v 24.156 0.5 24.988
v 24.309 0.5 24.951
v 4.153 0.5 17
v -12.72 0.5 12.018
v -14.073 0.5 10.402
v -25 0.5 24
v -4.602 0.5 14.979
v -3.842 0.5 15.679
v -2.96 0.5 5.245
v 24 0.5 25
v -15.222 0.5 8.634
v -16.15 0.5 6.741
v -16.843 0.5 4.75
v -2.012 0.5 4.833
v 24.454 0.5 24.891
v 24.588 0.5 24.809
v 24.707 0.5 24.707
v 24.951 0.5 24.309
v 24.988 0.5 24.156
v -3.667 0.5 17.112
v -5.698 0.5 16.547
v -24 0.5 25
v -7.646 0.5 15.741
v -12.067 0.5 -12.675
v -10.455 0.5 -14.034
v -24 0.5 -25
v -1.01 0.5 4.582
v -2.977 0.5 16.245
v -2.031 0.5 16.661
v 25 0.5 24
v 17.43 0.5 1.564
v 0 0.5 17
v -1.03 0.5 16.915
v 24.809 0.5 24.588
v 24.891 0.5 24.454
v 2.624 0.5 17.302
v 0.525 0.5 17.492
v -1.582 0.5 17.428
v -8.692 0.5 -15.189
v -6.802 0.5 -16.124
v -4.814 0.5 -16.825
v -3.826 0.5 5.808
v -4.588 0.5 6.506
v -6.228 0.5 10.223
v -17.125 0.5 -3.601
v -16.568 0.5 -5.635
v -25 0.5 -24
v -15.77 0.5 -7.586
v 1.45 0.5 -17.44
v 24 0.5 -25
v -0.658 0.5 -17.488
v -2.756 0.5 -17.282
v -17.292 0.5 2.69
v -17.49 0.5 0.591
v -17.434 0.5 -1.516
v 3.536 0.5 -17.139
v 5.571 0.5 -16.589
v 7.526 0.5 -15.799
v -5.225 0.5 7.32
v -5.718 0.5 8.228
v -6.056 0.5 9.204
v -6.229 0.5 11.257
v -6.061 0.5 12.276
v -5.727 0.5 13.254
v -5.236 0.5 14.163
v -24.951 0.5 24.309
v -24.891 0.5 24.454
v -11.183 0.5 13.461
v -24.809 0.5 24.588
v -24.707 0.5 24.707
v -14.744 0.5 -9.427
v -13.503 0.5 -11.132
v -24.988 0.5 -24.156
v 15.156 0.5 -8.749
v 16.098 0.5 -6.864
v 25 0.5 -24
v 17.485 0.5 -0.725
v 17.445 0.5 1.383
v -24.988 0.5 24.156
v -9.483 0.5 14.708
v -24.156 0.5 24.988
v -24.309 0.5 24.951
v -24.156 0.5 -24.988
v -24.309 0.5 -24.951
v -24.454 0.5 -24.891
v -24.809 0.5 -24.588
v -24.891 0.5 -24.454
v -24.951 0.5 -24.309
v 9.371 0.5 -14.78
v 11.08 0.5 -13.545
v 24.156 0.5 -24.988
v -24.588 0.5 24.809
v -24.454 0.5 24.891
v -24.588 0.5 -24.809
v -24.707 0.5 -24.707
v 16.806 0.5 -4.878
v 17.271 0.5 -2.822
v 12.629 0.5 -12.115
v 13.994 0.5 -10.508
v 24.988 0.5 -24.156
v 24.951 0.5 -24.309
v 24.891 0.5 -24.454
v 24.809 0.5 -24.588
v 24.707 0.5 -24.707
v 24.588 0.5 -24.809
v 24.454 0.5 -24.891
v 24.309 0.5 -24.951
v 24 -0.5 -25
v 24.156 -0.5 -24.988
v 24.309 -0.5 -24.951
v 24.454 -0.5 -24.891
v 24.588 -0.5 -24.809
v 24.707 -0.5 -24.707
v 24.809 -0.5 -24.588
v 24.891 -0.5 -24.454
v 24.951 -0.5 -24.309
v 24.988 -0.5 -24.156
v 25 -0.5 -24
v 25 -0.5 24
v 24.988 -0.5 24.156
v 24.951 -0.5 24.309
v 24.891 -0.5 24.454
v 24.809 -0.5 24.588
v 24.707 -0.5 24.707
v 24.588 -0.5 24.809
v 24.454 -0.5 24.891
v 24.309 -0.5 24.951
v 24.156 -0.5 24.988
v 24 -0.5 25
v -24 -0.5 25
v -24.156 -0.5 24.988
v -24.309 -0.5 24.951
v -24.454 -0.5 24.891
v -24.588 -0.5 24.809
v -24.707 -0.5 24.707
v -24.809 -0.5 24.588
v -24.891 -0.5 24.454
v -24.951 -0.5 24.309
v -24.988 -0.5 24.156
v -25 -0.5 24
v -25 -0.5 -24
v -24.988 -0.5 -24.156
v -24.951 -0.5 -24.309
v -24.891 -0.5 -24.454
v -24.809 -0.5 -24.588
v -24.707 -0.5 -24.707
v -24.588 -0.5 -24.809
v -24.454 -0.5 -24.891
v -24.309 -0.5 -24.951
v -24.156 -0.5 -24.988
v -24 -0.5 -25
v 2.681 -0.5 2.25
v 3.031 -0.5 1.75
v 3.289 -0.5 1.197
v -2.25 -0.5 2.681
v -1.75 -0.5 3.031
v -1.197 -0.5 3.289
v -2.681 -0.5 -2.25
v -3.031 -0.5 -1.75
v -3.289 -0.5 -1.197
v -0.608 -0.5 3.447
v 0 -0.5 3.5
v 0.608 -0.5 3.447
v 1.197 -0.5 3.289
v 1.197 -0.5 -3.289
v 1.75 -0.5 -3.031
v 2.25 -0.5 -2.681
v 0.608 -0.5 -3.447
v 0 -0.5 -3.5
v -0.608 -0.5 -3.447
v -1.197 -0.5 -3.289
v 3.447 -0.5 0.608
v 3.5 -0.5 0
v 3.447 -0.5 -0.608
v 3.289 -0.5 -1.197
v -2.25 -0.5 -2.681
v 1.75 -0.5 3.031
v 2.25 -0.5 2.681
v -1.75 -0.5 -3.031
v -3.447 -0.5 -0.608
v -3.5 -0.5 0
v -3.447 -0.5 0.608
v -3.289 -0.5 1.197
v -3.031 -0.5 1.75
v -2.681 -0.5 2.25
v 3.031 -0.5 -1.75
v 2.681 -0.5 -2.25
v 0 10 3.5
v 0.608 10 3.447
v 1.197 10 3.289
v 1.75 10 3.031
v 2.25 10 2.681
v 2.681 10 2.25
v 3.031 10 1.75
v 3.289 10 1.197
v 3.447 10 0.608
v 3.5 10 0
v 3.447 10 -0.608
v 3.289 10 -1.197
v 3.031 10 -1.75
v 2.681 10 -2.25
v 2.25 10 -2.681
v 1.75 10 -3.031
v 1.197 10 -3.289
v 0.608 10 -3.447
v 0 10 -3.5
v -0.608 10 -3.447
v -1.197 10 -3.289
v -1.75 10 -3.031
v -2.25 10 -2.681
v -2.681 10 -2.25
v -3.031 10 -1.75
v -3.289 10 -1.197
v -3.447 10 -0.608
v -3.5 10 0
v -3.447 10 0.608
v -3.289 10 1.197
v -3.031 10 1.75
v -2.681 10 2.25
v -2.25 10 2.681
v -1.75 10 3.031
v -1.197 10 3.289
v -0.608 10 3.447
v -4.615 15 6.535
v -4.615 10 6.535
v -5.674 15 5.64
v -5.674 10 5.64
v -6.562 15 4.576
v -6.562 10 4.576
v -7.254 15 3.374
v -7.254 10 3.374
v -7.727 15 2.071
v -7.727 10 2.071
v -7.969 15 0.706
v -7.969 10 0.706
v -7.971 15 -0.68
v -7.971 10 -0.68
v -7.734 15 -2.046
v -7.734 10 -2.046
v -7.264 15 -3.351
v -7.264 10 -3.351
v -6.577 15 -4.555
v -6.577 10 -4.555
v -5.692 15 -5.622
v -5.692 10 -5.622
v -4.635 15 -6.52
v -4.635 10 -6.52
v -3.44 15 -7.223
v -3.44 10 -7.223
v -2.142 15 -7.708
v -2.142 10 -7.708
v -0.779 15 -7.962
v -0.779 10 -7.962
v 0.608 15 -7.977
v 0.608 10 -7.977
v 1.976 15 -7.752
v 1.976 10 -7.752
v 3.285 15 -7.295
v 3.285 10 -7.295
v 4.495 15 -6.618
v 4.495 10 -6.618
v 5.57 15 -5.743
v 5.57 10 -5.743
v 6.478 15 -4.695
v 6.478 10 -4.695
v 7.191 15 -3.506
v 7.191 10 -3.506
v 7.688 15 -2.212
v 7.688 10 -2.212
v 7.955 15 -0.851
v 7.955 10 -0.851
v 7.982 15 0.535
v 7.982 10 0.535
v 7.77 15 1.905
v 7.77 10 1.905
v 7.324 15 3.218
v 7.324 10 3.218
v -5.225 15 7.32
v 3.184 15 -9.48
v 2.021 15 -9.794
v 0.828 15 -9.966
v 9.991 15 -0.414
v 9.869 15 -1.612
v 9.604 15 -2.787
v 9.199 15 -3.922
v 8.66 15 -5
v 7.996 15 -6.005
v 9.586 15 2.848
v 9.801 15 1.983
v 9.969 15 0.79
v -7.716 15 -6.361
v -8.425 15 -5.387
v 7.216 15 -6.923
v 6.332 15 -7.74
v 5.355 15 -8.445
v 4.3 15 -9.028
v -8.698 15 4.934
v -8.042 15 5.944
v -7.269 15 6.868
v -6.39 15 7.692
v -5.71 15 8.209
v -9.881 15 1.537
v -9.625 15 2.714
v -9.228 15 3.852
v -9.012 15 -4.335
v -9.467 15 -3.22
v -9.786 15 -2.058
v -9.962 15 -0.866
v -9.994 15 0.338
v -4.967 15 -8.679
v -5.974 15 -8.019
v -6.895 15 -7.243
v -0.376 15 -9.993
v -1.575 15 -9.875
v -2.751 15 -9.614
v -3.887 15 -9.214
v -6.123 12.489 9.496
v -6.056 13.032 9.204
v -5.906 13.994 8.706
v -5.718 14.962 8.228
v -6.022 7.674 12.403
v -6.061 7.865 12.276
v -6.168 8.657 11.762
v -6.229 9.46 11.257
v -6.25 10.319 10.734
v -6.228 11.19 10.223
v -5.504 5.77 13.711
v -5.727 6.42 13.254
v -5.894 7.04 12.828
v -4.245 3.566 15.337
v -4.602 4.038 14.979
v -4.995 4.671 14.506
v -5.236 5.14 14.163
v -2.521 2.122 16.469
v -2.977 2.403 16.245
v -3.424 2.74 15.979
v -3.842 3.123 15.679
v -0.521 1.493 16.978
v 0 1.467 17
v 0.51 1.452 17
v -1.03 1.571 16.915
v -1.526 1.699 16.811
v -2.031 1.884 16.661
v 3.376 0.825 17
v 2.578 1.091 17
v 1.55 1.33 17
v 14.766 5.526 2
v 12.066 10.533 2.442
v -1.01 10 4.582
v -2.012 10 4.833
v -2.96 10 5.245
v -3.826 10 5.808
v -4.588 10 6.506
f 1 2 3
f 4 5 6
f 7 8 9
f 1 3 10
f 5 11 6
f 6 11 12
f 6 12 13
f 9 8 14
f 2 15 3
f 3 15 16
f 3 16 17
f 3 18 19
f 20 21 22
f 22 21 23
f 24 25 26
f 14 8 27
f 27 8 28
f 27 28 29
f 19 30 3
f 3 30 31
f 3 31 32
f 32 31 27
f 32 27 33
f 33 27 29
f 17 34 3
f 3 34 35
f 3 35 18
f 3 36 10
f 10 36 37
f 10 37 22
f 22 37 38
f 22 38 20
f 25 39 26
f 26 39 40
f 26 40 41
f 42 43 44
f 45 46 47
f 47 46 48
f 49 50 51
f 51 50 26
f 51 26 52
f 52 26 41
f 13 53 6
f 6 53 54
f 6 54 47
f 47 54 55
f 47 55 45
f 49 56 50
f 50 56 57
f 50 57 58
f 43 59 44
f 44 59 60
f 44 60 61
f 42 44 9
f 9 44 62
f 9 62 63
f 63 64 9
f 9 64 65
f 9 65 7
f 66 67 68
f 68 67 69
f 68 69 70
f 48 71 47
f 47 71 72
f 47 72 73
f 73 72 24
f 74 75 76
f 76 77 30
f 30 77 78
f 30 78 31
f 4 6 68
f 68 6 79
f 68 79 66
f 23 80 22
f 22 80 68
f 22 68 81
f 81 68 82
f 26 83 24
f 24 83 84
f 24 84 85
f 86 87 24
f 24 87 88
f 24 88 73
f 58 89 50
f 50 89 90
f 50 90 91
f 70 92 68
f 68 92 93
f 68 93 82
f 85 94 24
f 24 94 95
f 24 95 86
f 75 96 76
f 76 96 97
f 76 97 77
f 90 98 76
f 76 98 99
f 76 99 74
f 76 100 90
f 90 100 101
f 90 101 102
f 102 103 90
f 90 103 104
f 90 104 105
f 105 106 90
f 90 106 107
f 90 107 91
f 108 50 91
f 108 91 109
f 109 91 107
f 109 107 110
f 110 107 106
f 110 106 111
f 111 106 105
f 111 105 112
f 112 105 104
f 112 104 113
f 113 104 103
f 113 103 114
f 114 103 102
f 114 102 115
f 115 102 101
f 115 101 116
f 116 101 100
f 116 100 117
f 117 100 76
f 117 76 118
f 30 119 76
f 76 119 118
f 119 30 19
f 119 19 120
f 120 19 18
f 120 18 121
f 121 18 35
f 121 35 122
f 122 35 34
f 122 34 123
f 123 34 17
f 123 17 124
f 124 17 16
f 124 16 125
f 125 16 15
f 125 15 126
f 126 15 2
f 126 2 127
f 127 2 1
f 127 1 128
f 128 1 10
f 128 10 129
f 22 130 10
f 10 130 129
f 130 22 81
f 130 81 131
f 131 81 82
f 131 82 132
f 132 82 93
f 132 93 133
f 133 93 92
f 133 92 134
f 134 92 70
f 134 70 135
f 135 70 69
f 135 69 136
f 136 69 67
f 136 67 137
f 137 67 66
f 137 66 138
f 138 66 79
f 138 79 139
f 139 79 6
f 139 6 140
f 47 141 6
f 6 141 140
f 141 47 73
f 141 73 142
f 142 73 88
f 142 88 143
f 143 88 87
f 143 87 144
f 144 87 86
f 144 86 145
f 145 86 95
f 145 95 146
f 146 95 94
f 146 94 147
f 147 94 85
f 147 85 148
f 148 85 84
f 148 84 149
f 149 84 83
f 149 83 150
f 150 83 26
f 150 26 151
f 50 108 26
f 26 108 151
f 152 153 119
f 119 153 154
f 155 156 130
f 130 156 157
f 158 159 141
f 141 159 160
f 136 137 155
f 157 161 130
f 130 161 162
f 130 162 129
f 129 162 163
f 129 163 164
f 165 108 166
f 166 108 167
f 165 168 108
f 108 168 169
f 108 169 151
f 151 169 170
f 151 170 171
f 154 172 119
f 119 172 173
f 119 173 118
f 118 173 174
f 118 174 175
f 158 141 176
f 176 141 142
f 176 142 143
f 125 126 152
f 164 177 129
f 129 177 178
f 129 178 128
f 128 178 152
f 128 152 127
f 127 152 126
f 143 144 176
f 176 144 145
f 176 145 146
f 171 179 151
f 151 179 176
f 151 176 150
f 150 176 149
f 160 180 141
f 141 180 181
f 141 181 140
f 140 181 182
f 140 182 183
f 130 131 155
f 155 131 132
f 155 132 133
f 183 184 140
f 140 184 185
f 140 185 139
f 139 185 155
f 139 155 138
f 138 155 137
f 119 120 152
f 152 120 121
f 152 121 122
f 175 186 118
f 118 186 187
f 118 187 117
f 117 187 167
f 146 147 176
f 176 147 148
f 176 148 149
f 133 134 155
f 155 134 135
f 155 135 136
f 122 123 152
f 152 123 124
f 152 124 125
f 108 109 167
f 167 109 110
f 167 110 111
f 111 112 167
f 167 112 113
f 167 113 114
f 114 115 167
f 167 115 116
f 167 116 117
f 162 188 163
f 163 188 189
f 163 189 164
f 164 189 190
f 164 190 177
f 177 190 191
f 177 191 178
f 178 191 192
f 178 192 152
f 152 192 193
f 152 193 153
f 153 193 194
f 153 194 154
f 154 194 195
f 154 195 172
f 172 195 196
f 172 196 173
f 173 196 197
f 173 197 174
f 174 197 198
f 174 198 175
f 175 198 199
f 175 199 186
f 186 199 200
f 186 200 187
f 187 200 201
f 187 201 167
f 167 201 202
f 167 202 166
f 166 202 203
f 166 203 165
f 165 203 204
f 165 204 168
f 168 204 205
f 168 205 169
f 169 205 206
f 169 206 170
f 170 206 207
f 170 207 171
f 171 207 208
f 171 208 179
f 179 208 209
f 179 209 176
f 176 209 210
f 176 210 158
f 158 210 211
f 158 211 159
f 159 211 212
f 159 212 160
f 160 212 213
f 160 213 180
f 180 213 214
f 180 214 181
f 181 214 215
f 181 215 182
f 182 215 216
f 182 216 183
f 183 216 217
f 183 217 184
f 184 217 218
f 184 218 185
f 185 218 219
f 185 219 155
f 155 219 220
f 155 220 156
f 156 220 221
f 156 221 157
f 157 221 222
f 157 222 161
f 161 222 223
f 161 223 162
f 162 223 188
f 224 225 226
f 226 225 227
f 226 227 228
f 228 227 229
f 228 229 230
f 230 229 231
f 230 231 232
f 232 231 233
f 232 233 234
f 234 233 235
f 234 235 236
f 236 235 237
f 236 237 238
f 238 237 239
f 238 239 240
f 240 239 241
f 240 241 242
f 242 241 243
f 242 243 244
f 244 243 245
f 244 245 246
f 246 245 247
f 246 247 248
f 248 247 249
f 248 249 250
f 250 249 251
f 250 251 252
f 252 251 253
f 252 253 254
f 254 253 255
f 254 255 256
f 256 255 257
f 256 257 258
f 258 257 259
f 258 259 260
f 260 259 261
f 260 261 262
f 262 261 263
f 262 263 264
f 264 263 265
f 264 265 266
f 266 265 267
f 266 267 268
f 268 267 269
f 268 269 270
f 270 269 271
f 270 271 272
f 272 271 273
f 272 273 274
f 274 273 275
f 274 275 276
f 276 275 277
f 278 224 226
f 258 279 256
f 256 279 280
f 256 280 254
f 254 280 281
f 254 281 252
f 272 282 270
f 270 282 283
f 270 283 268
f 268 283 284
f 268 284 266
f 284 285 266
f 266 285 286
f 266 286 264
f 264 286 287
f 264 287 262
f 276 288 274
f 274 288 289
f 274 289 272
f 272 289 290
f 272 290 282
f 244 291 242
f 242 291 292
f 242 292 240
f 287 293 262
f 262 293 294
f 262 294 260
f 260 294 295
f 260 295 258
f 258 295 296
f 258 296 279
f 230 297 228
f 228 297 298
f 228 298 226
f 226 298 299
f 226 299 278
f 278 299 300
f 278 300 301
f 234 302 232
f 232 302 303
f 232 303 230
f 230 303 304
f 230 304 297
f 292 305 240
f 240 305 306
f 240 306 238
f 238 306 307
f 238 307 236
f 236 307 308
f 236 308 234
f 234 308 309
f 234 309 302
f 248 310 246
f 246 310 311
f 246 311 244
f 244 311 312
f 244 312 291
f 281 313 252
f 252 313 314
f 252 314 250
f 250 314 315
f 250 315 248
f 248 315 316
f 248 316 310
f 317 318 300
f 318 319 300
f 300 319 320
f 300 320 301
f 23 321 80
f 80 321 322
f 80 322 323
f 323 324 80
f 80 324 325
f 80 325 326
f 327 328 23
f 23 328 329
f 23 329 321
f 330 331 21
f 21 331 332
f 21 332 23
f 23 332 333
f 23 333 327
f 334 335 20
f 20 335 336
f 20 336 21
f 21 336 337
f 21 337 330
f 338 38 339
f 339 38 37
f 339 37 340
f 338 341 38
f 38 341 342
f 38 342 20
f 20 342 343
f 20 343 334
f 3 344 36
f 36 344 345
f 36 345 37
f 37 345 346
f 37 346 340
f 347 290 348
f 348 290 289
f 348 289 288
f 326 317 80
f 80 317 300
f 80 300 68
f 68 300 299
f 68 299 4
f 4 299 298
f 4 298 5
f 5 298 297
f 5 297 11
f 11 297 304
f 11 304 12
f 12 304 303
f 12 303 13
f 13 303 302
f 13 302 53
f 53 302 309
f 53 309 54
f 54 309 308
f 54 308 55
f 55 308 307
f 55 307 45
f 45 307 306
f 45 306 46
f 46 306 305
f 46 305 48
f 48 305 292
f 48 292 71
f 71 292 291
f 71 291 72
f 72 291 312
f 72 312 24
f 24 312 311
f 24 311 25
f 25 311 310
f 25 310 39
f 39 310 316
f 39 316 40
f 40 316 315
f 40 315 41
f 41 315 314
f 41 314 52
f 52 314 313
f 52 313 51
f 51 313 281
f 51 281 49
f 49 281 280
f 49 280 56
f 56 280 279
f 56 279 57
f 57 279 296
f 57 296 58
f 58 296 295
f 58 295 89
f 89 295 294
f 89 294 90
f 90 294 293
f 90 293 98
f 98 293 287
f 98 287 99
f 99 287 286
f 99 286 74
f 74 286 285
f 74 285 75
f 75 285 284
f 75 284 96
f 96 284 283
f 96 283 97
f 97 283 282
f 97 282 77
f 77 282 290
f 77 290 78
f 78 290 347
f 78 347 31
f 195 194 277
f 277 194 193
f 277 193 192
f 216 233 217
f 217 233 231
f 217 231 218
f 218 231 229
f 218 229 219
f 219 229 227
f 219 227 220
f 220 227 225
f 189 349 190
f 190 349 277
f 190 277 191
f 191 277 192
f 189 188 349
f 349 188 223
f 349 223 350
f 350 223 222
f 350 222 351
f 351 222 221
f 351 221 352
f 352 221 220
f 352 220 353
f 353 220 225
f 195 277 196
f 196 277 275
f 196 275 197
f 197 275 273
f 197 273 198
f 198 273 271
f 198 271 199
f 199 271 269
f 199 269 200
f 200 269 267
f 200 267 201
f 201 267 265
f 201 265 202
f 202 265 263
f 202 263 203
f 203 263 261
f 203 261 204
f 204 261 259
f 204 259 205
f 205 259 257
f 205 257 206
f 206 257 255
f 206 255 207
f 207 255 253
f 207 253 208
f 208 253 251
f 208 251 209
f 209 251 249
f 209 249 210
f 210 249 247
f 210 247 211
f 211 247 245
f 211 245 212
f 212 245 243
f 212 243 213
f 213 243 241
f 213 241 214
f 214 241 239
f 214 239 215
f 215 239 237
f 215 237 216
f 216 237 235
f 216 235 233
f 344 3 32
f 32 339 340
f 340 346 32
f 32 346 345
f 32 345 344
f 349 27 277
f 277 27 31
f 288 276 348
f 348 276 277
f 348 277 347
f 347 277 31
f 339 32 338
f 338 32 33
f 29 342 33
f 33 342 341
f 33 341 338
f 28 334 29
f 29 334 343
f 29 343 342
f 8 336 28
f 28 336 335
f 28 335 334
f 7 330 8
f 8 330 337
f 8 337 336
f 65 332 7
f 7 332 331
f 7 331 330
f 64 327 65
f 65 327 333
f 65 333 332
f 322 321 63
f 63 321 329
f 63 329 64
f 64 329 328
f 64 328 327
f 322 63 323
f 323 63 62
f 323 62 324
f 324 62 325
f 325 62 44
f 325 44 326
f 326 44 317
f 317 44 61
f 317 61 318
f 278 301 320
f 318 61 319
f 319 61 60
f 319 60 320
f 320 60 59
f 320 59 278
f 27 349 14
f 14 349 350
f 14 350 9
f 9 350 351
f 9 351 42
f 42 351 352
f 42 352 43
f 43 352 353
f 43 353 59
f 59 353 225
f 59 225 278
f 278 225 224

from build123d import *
from build123d.topology import SkipClean

# Parameters (mm, degrees)
BOSS_EXTRUDE1_DEPTH      = 0.5
BOSS_EXTRUDE1_DEPTH_BACK = 0.5
SKETCH1_R                = 3.5
CUT_EXTRUDE1_DEPTH       = 14.5


with BuildPart() as part:
    # Sketch1 → Boss-Extrude1 (new, two sides: drawn at the far end of the back side and taken through both)
    with BuildSketch(Plane(origin=(0, 0, 0), x_dir=(1, 0, 0), z_dir=(0, 1, 0)).offset(-BOSS_EXTRUDE1_DEPTH_BACK)):
        with BuildLine():
            Line((-24, 25), (24, 25))
            ThreePointArc((24, 25), (24.707106781, 24.707106781), (25, 24))
            Line((25, 24), (25, -24))
            ThreePointArc((25, -24), (24.707106781, -24.707106781), (24, -25))
            Line((24, -25), (-24, -25))
            ThreePointArc((-24, -25), (-24.707106781, -24.707106781), (-25, -24))
            Line((-25, -24), (-25, 24))
            ThreePointArc((-25, 24), (-24.707106781, 24.707106781), (-24, 25))
        make_face()
        with Locations(Location((0, 0, 0), (0, 0, 270))):
            Circle(SKETCH1_R, mode=Mode.SUBTRACT)
    extrude(amount=BOSS_EXTRUDE1_DEPTH + BOSS_EXTRUDE1_DEPTH_BACK)

    # Sketch2 → Revolve1 (revolve)
    with SkipClean():  # the faces are left unmerged after this step: merging them gives an invalid solid
        with BuildSketch(Plane.XY, mode=Mode.PRIVATE) as revolve1_sk:
            Polygon((-8, 15), (-10, 15), (-17.5, 0.5), (-3.5, 0.5), (-3.5, 10), (-8, 10), align=None)
        revolve(revolve1_sk.sketch.rotate(Axis((0, 0.5, 0), (0, 1, 0)), 180), axis=Axis((0, 0.5, 0), (0, 1, 0)))
    add(part.part.scale(1), mode=Mode.REPLACE)  # the faces are merged on a copy

    # Sketch4 → Cut-Extrude1 (cut)
    with BuildSketch(Plane(origin=(0, 15, 0), x_dir=(1, 0, 0), z_dir=(0, 1, 0))):
        with BuildLine():
            Line((25, -0.324292046), (-1.009690159, -4.582097133))
            ThreePointArc((-1.009690159, -4.582097133), (-6.229441906, -11.256511144), (0, -17))
            Line((0, -17), (25, -17))
            Line((25, -17), (25, -7.125))
            Line((25, -7.125), (25, -0.324292046))
        make_face()
    extrude(amount=-CUT_EXTRUDE1_DEPTH, mode=Mode.SUBTRACT)


solid = part.part
